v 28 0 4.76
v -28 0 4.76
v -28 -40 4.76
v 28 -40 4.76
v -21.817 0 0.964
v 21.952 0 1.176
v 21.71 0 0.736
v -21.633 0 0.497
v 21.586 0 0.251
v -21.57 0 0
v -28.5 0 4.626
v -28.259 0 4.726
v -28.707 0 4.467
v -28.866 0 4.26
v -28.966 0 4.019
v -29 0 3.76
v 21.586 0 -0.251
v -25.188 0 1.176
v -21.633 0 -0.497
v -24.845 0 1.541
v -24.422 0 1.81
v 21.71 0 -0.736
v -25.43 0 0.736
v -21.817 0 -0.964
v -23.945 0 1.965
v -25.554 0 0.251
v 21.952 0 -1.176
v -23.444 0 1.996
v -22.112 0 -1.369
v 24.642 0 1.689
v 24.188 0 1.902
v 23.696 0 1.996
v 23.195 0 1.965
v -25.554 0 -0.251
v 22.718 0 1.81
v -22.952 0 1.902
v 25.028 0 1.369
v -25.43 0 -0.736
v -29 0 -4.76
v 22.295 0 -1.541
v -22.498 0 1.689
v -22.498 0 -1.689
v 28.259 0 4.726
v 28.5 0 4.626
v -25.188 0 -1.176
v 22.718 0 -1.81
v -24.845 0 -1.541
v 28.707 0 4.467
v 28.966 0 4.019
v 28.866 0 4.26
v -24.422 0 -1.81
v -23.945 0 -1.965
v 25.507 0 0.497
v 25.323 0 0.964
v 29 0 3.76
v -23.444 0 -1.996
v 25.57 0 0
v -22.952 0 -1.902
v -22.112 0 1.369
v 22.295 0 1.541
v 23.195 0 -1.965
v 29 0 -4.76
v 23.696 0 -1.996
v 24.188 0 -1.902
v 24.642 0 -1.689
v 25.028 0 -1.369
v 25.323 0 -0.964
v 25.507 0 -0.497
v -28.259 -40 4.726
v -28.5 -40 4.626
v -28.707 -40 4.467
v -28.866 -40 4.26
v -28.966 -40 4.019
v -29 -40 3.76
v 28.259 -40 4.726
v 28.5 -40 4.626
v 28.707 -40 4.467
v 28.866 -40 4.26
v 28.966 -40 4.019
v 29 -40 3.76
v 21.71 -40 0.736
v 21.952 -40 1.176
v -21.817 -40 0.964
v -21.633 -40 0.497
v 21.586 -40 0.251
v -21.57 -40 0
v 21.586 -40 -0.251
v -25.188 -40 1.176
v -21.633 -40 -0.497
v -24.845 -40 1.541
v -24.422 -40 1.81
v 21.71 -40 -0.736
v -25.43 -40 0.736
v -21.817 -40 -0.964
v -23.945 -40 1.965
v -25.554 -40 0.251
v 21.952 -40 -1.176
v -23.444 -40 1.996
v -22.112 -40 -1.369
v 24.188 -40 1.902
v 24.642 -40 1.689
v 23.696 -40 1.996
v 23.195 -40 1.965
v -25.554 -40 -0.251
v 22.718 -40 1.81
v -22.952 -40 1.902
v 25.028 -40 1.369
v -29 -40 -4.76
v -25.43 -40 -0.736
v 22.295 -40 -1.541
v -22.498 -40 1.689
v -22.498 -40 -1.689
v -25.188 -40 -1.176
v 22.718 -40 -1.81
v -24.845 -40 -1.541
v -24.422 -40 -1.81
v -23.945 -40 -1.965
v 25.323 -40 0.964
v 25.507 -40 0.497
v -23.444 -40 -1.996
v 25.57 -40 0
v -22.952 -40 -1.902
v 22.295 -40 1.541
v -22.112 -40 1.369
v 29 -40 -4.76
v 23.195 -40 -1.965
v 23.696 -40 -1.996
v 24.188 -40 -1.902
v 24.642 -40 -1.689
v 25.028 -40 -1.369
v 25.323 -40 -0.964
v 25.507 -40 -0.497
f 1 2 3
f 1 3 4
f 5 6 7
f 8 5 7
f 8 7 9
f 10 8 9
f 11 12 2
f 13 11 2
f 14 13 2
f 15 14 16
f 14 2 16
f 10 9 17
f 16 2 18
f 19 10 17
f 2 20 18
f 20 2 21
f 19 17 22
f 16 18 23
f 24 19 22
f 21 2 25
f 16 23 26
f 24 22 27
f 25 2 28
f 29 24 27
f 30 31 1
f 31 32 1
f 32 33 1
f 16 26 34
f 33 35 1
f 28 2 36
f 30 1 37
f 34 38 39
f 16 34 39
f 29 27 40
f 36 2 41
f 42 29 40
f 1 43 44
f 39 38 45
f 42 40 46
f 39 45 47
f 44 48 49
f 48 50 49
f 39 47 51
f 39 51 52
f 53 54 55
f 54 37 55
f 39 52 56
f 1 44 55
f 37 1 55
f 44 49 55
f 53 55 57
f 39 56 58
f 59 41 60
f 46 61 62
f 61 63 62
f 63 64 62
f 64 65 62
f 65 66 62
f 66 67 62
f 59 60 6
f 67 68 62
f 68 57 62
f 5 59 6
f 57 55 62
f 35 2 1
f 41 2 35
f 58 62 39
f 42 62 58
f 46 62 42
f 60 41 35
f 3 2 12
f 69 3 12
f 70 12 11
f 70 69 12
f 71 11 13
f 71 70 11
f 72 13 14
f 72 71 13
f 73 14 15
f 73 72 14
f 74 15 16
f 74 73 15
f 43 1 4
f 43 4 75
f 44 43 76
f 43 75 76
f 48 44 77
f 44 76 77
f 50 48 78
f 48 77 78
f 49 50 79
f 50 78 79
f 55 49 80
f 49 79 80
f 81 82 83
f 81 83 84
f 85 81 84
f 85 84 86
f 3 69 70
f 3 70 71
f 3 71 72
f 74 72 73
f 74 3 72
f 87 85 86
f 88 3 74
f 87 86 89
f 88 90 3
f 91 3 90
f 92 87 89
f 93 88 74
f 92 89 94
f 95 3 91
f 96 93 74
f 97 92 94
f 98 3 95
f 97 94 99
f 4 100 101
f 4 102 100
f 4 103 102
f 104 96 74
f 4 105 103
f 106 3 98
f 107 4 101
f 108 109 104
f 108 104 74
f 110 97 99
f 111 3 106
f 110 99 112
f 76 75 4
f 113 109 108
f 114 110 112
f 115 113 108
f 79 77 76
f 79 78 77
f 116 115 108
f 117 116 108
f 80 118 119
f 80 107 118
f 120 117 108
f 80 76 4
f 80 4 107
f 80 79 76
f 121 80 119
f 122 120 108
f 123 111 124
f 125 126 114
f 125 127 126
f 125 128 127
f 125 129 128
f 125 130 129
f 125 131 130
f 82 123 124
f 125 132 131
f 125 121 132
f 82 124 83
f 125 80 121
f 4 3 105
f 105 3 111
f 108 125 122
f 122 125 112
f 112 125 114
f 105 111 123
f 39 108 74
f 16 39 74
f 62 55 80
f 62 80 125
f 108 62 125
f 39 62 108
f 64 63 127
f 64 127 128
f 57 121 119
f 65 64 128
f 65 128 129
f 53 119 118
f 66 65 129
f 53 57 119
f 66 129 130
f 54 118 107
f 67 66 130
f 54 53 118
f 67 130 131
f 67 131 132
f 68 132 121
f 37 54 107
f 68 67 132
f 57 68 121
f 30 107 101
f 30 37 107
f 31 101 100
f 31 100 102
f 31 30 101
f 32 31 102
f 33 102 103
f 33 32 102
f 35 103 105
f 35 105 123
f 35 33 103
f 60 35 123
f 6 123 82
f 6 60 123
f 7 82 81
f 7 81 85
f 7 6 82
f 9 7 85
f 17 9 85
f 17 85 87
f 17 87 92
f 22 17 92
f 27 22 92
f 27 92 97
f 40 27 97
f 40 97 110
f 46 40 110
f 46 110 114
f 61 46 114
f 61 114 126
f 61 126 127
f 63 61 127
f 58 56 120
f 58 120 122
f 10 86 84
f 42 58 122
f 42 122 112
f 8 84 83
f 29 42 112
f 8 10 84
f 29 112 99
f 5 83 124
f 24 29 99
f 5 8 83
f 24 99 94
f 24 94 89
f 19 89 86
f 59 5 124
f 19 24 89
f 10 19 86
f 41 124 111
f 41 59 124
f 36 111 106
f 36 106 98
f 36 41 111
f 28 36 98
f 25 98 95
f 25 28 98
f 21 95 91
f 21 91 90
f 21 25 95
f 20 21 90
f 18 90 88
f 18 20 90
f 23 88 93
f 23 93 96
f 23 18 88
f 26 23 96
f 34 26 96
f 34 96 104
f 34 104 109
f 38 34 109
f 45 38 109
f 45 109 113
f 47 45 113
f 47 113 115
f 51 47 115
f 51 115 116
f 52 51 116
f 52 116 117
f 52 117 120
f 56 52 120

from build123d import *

# Parameters (mm, degrees)
SKETCH_W  = 58
SKETCH_H  = 9.52
SKETCH_R  = 2
PAD_DEPTH = 40
FILLET_R  = 1


with BuildPart() as part:
    # Sketch → Pad (new body)
    with BuildSketch(Plane.XZ):
        Rectangle(SKETCH_W, SKETCH_H)
        with Locations((-23.57, 0)):
            Circle(SKETCH_R, mode=Mode.SUBTRACT)
        with Locations((23.57, 0)):
            Circle(SKETCH_R, mode=Mode.SUBTRACT)
    extrude(amount=PAD_DEPTH)

    # Fillet
    fillet_edges = [part.edges().sort_by_distance(p)[0] for p in [
        (-29, -20, 4.76),
        (29, -20, 4.76),
    ]]
    fillet(fillet_edges, radius=FILLET_R)


solid = part.part
